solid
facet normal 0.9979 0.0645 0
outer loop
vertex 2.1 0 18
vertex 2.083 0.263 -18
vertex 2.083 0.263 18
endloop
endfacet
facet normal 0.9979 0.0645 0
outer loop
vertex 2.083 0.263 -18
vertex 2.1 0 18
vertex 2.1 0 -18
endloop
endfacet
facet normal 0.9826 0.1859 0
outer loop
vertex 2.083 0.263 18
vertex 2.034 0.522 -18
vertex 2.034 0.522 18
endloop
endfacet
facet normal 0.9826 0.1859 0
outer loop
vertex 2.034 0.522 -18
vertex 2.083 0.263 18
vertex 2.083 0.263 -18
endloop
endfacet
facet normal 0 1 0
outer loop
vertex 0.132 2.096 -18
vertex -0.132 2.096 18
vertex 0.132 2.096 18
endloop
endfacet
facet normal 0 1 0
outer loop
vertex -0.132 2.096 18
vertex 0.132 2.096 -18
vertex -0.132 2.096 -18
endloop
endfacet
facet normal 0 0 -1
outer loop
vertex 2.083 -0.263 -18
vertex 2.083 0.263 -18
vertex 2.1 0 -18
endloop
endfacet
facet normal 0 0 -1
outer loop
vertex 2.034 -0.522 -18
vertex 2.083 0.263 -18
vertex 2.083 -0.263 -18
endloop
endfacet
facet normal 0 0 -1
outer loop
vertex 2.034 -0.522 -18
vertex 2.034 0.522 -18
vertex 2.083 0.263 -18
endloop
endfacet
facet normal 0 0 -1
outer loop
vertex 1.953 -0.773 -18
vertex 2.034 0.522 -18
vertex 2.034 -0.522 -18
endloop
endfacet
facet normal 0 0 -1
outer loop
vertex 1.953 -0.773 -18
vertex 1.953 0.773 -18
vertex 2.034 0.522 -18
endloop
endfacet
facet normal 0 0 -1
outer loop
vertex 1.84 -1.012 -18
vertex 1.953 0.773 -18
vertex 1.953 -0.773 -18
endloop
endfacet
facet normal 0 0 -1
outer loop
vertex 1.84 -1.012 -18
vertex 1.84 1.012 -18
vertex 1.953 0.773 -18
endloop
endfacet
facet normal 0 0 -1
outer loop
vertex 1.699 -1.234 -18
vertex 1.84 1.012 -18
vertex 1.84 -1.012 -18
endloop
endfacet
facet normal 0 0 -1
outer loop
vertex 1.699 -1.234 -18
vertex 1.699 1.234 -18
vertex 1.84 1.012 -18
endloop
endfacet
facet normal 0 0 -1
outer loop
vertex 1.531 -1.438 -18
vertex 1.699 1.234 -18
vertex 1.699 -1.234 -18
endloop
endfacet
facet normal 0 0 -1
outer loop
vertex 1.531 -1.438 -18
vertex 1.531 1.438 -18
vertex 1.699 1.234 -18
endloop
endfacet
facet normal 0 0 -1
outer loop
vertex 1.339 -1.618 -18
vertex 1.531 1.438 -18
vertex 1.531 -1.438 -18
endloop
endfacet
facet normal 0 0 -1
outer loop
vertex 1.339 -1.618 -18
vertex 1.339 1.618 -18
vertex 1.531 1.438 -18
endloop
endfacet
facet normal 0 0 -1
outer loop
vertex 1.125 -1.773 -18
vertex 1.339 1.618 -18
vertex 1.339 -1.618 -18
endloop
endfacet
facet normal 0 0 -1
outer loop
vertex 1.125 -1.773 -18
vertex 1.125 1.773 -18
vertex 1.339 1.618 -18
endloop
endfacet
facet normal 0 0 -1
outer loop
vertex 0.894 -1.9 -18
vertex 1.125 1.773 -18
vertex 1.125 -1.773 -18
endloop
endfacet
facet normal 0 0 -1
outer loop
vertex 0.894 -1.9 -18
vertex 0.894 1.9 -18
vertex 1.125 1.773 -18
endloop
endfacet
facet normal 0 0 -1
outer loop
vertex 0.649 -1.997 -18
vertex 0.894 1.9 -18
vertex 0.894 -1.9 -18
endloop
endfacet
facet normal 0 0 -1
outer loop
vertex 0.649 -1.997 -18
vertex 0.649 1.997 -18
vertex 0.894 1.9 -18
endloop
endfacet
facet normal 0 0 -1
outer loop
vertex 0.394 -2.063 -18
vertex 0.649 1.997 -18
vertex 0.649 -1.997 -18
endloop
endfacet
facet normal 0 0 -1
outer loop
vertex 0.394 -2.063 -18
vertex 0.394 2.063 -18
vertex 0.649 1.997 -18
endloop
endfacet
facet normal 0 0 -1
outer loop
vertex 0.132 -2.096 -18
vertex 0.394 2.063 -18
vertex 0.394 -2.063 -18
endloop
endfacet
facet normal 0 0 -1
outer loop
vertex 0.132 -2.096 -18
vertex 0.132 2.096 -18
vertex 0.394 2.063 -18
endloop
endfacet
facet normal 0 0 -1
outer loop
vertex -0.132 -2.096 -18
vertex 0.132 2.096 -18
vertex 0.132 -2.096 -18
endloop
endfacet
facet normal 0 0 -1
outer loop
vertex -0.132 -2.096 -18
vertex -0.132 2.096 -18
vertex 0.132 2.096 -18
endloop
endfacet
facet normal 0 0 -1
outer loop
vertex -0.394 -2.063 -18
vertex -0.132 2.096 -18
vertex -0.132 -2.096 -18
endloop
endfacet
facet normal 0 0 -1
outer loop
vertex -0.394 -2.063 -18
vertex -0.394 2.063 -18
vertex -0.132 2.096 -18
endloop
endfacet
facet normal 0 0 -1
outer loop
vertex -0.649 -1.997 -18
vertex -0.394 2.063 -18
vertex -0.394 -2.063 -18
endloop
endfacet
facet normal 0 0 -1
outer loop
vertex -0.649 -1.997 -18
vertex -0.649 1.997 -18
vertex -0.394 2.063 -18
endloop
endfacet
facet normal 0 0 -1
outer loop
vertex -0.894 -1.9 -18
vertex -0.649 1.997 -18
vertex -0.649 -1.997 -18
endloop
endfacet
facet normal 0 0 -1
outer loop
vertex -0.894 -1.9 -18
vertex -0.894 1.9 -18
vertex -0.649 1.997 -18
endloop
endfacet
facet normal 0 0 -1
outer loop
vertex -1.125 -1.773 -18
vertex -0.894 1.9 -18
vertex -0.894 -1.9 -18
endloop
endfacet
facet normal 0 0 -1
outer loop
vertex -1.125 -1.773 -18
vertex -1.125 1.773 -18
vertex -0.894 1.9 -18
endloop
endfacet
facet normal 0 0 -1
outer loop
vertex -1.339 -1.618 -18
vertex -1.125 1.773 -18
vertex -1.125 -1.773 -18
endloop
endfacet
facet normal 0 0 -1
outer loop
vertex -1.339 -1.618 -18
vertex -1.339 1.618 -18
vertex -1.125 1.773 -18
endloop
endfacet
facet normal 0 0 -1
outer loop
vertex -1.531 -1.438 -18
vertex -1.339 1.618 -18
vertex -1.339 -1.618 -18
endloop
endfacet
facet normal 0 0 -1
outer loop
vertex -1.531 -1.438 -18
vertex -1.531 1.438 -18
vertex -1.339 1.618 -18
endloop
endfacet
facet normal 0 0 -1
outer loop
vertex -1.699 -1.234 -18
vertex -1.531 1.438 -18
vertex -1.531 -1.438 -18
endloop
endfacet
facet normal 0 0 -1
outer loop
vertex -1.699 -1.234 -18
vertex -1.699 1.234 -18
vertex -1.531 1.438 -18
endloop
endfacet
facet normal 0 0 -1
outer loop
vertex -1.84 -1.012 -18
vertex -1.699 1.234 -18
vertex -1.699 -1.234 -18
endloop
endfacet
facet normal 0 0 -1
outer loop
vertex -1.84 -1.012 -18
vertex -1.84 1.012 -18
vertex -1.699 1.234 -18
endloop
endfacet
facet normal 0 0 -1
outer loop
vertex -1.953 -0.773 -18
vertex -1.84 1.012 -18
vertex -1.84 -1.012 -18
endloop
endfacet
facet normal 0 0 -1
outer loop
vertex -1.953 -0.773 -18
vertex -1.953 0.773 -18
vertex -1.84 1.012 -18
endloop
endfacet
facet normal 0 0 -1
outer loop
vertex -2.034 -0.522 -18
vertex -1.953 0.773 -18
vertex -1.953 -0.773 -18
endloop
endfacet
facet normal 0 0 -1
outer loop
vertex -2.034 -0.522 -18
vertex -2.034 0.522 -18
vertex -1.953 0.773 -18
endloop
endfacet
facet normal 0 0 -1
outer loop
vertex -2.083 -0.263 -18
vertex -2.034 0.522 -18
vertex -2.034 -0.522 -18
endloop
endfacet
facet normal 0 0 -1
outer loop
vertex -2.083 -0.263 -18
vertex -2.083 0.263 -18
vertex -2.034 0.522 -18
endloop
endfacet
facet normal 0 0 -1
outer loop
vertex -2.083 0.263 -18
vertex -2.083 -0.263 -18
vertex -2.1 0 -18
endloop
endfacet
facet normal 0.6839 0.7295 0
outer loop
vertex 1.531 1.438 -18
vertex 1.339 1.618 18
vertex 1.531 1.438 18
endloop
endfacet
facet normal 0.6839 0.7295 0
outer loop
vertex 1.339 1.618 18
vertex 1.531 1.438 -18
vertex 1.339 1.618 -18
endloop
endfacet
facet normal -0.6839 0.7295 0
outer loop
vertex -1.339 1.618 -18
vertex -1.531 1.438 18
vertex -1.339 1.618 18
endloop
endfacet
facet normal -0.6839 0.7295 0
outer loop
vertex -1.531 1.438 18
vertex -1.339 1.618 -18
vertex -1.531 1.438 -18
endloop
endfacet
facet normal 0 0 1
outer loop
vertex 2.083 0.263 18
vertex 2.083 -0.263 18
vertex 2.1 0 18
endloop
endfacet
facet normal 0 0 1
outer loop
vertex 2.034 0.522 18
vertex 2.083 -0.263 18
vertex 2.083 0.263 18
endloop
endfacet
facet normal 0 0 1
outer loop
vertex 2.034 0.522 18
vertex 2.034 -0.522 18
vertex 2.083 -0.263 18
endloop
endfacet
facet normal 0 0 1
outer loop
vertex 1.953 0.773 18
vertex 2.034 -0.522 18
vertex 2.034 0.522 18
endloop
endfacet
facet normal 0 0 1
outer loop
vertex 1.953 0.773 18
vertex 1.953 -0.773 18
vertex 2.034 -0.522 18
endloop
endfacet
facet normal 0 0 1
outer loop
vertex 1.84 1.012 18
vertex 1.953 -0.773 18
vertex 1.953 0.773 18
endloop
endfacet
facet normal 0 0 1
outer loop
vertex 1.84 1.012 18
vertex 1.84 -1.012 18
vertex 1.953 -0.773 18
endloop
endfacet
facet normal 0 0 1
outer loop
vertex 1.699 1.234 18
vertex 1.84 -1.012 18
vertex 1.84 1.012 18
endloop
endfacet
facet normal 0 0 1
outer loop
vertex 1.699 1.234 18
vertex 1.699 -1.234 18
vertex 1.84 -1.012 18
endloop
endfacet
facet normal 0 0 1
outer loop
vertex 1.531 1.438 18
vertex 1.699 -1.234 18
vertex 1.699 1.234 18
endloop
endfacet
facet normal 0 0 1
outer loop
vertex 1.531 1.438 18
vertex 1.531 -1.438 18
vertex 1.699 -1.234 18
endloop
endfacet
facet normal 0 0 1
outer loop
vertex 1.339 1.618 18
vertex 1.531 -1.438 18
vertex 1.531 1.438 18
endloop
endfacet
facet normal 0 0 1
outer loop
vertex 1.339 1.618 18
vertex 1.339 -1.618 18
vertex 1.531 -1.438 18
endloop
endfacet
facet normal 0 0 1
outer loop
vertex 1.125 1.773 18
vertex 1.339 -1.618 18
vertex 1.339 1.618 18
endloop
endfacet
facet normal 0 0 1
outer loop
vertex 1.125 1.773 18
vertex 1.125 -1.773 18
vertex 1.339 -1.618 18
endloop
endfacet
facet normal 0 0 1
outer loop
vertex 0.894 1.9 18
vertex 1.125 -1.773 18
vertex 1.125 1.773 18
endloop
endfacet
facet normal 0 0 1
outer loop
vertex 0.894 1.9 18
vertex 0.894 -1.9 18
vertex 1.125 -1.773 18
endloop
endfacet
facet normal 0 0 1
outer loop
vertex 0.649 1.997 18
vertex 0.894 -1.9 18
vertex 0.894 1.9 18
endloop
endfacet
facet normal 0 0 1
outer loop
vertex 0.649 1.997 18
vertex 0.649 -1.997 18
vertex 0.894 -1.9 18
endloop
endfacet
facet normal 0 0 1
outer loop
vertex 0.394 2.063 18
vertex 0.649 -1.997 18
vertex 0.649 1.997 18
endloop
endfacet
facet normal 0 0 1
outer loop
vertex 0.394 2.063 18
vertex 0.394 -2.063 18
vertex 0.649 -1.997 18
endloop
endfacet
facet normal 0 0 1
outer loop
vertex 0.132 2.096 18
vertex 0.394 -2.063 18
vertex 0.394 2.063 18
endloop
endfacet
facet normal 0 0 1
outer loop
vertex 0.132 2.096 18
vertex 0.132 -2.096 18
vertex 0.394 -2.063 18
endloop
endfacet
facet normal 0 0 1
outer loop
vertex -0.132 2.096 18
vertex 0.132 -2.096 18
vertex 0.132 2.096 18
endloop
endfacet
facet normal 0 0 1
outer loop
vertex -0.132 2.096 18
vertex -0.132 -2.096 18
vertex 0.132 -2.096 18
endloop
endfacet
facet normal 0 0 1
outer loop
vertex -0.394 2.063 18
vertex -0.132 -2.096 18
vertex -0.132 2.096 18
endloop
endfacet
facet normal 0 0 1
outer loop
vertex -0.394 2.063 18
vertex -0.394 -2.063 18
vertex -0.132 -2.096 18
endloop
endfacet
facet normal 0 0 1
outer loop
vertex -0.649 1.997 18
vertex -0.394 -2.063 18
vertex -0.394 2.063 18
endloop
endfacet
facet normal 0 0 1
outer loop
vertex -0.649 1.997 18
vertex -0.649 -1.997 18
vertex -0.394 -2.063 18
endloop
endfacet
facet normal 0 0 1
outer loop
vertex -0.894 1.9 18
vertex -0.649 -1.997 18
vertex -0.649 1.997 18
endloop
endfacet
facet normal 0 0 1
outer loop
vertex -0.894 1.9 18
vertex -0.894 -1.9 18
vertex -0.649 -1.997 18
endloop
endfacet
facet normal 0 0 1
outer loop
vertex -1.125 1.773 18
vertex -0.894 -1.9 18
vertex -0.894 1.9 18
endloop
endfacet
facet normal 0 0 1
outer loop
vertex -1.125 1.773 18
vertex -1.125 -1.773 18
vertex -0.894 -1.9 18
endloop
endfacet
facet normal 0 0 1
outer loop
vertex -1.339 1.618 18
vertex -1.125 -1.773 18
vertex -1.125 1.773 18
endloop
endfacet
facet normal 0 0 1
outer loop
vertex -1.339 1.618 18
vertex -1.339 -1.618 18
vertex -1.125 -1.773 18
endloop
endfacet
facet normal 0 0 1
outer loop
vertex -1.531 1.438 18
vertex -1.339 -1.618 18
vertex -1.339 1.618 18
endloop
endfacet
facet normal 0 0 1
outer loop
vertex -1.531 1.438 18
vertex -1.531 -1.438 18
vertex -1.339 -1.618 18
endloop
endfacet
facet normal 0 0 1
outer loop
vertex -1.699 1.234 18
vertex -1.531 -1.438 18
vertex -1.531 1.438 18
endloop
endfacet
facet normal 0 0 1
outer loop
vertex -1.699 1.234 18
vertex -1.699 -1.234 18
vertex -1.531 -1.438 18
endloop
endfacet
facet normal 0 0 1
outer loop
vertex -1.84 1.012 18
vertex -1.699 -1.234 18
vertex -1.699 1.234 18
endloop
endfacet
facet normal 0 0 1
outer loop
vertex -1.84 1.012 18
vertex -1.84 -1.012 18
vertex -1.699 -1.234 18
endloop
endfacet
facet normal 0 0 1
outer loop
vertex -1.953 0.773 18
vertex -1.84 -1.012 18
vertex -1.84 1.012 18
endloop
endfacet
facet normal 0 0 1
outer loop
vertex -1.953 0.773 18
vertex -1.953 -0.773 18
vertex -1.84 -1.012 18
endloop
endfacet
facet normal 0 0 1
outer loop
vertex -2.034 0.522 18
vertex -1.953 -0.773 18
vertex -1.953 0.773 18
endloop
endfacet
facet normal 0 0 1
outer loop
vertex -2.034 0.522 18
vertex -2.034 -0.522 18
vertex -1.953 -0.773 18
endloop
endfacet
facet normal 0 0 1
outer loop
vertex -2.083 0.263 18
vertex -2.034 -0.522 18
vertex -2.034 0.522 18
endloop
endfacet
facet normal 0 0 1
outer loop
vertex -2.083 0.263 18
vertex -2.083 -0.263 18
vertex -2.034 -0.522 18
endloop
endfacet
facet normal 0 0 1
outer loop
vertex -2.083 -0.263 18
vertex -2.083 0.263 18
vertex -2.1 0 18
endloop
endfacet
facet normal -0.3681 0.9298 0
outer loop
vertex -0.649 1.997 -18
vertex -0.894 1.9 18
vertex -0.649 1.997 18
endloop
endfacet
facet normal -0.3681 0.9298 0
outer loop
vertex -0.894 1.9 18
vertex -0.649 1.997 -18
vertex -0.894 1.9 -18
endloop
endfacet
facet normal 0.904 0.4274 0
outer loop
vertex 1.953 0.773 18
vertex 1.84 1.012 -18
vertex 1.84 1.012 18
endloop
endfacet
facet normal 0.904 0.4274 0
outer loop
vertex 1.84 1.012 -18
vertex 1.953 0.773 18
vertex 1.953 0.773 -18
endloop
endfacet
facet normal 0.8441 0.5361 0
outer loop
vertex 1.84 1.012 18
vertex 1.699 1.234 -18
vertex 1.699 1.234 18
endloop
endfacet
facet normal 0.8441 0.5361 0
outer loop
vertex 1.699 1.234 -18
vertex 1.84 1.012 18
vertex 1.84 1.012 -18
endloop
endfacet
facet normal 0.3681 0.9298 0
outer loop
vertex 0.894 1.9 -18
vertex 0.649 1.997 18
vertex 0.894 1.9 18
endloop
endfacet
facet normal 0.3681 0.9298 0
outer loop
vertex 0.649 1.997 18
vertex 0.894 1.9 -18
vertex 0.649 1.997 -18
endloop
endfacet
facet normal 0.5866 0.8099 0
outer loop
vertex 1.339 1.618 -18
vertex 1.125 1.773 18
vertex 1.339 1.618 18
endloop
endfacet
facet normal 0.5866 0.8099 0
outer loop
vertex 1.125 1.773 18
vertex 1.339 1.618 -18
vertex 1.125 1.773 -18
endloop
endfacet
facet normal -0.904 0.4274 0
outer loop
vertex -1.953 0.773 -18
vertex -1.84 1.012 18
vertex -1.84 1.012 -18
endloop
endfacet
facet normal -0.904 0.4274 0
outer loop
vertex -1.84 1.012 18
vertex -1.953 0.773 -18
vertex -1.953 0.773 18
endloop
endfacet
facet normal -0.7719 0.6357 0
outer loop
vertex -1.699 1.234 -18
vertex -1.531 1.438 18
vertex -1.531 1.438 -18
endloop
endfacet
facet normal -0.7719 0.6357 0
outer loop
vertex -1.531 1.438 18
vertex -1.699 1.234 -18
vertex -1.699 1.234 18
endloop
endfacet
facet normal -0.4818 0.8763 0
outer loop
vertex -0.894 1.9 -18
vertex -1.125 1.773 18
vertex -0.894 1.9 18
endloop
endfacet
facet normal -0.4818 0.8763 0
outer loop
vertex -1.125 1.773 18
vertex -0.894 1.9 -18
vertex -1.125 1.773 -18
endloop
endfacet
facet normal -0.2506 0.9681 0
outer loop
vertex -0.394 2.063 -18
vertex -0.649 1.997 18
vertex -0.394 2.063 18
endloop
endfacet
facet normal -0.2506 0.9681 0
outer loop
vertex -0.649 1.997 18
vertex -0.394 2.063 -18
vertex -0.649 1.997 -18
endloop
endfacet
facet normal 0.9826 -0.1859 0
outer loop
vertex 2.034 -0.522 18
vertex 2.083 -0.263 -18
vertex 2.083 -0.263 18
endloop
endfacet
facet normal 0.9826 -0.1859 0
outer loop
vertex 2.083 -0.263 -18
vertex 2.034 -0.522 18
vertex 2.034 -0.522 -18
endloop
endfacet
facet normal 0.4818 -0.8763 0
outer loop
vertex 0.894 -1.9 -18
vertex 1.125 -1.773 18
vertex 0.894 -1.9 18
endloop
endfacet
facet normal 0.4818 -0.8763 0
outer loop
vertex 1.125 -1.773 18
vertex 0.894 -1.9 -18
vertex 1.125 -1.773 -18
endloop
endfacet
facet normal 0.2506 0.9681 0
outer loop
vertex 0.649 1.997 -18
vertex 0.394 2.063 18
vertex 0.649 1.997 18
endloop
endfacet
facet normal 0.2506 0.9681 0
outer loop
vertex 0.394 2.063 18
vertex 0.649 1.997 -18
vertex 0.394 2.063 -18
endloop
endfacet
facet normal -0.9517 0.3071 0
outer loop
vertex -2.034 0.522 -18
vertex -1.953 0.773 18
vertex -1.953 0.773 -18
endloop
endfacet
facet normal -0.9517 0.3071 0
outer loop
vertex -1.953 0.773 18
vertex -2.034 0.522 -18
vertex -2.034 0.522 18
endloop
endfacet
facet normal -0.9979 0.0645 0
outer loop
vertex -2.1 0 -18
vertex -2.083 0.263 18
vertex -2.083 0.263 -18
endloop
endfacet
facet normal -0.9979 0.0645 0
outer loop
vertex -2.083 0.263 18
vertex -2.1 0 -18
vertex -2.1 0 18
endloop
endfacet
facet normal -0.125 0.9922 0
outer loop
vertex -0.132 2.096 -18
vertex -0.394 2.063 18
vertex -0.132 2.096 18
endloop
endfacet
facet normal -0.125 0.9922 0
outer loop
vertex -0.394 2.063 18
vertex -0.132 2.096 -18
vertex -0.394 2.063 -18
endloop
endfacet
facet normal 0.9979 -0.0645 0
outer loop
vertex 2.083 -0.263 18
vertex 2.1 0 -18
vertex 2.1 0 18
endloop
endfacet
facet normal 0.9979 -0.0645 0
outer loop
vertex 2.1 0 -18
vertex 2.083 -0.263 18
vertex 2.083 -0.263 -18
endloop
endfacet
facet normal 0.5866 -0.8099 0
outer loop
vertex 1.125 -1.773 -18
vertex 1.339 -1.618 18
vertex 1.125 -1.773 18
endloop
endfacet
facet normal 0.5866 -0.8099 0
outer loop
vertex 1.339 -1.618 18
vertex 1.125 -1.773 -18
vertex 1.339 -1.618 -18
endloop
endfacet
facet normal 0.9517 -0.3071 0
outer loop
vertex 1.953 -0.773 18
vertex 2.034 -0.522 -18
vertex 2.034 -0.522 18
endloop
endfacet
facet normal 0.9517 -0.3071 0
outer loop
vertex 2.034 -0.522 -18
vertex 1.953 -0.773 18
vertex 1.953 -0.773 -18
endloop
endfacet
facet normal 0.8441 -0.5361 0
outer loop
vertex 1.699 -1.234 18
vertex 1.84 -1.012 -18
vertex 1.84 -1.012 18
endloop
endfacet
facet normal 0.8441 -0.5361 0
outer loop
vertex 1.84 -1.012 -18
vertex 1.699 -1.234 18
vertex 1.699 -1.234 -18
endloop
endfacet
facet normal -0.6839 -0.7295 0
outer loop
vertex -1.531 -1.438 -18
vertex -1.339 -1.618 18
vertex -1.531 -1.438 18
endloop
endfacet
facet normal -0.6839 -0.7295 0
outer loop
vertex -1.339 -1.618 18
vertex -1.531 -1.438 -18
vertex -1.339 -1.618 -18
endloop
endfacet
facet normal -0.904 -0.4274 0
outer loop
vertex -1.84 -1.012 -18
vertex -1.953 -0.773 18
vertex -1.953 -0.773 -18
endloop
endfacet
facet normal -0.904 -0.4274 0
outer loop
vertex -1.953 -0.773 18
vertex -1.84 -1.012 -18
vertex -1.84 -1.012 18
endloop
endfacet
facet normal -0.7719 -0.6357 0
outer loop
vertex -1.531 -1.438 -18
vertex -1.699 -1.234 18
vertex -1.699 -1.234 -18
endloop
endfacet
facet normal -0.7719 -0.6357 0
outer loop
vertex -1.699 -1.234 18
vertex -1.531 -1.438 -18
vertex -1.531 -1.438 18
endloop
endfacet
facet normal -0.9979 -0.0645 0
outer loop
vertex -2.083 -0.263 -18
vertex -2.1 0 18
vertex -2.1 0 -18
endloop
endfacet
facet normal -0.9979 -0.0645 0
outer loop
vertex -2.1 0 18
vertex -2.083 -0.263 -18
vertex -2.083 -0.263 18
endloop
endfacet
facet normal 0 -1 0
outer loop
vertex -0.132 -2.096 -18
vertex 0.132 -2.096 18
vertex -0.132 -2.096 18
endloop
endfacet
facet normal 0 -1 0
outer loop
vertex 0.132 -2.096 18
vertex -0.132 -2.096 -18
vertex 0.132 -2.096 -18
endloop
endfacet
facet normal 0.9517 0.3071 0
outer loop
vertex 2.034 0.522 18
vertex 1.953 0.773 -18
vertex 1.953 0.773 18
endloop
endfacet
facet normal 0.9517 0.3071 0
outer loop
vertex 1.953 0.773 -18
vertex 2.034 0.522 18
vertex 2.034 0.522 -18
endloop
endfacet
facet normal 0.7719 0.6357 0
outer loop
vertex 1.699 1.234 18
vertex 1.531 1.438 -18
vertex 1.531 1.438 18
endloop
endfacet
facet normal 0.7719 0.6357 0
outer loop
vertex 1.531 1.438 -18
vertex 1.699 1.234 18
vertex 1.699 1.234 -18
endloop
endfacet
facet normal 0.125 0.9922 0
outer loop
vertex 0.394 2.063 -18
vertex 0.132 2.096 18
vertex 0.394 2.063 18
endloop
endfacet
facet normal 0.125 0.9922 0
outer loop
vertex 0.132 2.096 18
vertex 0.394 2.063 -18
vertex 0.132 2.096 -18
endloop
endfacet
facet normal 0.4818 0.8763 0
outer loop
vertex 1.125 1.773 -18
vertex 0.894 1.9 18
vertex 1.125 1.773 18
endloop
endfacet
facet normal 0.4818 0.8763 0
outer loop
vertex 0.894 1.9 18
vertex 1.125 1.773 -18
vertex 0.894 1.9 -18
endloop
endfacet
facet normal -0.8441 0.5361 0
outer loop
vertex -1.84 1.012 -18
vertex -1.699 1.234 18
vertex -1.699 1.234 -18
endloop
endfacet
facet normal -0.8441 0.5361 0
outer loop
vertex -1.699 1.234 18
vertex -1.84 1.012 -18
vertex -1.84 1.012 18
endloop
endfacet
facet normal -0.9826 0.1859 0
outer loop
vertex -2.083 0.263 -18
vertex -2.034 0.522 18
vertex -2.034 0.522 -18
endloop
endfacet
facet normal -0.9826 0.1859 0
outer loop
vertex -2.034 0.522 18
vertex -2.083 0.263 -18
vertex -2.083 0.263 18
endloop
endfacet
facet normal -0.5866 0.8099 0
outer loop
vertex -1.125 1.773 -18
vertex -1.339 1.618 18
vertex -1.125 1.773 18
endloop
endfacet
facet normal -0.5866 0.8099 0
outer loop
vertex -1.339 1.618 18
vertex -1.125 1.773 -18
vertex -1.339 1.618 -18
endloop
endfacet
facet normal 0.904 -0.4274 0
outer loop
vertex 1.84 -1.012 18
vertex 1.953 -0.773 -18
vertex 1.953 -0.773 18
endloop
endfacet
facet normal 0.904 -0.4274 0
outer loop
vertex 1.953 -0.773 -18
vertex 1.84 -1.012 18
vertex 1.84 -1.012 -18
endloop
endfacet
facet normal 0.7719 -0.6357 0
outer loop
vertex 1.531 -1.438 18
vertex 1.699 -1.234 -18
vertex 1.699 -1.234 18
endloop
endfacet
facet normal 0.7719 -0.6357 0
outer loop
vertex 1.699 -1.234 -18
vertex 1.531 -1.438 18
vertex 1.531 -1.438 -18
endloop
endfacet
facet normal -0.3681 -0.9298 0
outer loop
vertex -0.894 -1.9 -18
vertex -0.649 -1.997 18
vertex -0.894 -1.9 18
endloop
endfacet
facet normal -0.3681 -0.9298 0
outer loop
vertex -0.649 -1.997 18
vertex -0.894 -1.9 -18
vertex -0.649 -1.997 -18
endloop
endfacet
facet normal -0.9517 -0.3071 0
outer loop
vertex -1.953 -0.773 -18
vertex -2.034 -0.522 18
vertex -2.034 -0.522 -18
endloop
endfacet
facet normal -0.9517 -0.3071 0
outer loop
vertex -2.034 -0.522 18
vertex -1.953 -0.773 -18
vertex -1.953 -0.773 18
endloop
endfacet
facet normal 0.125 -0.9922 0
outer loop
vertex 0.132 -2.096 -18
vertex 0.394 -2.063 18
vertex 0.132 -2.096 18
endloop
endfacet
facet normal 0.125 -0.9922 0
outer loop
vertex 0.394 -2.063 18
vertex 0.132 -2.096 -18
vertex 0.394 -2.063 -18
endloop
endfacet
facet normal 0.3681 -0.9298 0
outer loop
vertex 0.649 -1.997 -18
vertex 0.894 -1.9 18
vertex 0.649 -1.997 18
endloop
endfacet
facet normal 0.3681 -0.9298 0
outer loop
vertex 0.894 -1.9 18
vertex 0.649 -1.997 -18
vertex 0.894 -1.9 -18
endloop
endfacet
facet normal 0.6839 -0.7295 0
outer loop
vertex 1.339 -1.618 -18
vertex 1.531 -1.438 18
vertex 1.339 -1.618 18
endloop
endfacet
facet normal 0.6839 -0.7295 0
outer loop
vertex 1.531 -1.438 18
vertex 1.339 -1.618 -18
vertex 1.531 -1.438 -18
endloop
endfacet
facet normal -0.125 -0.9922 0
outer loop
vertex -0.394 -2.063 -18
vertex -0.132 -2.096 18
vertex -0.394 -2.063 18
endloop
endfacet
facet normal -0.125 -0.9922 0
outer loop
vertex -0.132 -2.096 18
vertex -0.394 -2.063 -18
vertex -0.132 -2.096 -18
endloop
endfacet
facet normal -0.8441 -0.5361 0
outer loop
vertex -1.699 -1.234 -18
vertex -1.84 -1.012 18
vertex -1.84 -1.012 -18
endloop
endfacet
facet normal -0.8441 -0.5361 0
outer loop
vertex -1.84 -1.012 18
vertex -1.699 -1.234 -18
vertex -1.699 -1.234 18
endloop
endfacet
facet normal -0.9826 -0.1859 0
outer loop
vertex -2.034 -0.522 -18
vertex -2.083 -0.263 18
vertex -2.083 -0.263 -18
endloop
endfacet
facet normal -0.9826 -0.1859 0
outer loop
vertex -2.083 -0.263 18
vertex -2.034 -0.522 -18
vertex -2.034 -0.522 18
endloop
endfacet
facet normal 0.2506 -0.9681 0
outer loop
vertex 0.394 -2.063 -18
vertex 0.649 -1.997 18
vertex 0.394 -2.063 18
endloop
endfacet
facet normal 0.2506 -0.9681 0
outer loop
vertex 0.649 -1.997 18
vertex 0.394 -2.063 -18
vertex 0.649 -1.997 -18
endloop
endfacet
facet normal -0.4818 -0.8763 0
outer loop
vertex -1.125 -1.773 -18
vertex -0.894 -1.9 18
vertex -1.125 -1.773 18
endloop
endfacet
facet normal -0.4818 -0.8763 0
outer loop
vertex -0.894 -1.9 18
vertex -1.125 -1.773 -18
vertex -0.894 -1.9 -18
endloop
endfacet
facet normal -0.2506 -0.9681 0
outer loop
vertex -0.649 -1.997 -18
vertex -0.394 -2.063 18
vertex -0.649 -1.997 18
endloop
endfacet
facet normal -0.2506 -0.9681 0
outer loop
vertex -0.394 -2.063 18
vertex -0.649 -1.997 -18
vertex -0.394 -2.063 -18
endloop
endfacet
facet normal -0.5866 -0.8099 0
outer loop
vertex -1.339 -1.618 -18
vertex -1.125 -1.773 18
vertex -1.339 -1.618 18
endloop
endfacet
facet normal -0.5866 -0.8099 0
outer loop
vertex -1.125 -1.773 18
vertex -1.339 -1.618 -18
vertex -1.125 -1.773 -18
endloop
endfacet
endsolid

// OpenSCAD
$fn = 50;


difference() {
	union() {
		translate(v = [0, 0, -18.0000000000]) {
			cylinder(h = 36, r = 2.1000000000);
		}
	}
	union() {
		translate(v = [0, 0, -100.0000000000]) {
			cylinder(h = 200, r = 0);
		}
	}
}
